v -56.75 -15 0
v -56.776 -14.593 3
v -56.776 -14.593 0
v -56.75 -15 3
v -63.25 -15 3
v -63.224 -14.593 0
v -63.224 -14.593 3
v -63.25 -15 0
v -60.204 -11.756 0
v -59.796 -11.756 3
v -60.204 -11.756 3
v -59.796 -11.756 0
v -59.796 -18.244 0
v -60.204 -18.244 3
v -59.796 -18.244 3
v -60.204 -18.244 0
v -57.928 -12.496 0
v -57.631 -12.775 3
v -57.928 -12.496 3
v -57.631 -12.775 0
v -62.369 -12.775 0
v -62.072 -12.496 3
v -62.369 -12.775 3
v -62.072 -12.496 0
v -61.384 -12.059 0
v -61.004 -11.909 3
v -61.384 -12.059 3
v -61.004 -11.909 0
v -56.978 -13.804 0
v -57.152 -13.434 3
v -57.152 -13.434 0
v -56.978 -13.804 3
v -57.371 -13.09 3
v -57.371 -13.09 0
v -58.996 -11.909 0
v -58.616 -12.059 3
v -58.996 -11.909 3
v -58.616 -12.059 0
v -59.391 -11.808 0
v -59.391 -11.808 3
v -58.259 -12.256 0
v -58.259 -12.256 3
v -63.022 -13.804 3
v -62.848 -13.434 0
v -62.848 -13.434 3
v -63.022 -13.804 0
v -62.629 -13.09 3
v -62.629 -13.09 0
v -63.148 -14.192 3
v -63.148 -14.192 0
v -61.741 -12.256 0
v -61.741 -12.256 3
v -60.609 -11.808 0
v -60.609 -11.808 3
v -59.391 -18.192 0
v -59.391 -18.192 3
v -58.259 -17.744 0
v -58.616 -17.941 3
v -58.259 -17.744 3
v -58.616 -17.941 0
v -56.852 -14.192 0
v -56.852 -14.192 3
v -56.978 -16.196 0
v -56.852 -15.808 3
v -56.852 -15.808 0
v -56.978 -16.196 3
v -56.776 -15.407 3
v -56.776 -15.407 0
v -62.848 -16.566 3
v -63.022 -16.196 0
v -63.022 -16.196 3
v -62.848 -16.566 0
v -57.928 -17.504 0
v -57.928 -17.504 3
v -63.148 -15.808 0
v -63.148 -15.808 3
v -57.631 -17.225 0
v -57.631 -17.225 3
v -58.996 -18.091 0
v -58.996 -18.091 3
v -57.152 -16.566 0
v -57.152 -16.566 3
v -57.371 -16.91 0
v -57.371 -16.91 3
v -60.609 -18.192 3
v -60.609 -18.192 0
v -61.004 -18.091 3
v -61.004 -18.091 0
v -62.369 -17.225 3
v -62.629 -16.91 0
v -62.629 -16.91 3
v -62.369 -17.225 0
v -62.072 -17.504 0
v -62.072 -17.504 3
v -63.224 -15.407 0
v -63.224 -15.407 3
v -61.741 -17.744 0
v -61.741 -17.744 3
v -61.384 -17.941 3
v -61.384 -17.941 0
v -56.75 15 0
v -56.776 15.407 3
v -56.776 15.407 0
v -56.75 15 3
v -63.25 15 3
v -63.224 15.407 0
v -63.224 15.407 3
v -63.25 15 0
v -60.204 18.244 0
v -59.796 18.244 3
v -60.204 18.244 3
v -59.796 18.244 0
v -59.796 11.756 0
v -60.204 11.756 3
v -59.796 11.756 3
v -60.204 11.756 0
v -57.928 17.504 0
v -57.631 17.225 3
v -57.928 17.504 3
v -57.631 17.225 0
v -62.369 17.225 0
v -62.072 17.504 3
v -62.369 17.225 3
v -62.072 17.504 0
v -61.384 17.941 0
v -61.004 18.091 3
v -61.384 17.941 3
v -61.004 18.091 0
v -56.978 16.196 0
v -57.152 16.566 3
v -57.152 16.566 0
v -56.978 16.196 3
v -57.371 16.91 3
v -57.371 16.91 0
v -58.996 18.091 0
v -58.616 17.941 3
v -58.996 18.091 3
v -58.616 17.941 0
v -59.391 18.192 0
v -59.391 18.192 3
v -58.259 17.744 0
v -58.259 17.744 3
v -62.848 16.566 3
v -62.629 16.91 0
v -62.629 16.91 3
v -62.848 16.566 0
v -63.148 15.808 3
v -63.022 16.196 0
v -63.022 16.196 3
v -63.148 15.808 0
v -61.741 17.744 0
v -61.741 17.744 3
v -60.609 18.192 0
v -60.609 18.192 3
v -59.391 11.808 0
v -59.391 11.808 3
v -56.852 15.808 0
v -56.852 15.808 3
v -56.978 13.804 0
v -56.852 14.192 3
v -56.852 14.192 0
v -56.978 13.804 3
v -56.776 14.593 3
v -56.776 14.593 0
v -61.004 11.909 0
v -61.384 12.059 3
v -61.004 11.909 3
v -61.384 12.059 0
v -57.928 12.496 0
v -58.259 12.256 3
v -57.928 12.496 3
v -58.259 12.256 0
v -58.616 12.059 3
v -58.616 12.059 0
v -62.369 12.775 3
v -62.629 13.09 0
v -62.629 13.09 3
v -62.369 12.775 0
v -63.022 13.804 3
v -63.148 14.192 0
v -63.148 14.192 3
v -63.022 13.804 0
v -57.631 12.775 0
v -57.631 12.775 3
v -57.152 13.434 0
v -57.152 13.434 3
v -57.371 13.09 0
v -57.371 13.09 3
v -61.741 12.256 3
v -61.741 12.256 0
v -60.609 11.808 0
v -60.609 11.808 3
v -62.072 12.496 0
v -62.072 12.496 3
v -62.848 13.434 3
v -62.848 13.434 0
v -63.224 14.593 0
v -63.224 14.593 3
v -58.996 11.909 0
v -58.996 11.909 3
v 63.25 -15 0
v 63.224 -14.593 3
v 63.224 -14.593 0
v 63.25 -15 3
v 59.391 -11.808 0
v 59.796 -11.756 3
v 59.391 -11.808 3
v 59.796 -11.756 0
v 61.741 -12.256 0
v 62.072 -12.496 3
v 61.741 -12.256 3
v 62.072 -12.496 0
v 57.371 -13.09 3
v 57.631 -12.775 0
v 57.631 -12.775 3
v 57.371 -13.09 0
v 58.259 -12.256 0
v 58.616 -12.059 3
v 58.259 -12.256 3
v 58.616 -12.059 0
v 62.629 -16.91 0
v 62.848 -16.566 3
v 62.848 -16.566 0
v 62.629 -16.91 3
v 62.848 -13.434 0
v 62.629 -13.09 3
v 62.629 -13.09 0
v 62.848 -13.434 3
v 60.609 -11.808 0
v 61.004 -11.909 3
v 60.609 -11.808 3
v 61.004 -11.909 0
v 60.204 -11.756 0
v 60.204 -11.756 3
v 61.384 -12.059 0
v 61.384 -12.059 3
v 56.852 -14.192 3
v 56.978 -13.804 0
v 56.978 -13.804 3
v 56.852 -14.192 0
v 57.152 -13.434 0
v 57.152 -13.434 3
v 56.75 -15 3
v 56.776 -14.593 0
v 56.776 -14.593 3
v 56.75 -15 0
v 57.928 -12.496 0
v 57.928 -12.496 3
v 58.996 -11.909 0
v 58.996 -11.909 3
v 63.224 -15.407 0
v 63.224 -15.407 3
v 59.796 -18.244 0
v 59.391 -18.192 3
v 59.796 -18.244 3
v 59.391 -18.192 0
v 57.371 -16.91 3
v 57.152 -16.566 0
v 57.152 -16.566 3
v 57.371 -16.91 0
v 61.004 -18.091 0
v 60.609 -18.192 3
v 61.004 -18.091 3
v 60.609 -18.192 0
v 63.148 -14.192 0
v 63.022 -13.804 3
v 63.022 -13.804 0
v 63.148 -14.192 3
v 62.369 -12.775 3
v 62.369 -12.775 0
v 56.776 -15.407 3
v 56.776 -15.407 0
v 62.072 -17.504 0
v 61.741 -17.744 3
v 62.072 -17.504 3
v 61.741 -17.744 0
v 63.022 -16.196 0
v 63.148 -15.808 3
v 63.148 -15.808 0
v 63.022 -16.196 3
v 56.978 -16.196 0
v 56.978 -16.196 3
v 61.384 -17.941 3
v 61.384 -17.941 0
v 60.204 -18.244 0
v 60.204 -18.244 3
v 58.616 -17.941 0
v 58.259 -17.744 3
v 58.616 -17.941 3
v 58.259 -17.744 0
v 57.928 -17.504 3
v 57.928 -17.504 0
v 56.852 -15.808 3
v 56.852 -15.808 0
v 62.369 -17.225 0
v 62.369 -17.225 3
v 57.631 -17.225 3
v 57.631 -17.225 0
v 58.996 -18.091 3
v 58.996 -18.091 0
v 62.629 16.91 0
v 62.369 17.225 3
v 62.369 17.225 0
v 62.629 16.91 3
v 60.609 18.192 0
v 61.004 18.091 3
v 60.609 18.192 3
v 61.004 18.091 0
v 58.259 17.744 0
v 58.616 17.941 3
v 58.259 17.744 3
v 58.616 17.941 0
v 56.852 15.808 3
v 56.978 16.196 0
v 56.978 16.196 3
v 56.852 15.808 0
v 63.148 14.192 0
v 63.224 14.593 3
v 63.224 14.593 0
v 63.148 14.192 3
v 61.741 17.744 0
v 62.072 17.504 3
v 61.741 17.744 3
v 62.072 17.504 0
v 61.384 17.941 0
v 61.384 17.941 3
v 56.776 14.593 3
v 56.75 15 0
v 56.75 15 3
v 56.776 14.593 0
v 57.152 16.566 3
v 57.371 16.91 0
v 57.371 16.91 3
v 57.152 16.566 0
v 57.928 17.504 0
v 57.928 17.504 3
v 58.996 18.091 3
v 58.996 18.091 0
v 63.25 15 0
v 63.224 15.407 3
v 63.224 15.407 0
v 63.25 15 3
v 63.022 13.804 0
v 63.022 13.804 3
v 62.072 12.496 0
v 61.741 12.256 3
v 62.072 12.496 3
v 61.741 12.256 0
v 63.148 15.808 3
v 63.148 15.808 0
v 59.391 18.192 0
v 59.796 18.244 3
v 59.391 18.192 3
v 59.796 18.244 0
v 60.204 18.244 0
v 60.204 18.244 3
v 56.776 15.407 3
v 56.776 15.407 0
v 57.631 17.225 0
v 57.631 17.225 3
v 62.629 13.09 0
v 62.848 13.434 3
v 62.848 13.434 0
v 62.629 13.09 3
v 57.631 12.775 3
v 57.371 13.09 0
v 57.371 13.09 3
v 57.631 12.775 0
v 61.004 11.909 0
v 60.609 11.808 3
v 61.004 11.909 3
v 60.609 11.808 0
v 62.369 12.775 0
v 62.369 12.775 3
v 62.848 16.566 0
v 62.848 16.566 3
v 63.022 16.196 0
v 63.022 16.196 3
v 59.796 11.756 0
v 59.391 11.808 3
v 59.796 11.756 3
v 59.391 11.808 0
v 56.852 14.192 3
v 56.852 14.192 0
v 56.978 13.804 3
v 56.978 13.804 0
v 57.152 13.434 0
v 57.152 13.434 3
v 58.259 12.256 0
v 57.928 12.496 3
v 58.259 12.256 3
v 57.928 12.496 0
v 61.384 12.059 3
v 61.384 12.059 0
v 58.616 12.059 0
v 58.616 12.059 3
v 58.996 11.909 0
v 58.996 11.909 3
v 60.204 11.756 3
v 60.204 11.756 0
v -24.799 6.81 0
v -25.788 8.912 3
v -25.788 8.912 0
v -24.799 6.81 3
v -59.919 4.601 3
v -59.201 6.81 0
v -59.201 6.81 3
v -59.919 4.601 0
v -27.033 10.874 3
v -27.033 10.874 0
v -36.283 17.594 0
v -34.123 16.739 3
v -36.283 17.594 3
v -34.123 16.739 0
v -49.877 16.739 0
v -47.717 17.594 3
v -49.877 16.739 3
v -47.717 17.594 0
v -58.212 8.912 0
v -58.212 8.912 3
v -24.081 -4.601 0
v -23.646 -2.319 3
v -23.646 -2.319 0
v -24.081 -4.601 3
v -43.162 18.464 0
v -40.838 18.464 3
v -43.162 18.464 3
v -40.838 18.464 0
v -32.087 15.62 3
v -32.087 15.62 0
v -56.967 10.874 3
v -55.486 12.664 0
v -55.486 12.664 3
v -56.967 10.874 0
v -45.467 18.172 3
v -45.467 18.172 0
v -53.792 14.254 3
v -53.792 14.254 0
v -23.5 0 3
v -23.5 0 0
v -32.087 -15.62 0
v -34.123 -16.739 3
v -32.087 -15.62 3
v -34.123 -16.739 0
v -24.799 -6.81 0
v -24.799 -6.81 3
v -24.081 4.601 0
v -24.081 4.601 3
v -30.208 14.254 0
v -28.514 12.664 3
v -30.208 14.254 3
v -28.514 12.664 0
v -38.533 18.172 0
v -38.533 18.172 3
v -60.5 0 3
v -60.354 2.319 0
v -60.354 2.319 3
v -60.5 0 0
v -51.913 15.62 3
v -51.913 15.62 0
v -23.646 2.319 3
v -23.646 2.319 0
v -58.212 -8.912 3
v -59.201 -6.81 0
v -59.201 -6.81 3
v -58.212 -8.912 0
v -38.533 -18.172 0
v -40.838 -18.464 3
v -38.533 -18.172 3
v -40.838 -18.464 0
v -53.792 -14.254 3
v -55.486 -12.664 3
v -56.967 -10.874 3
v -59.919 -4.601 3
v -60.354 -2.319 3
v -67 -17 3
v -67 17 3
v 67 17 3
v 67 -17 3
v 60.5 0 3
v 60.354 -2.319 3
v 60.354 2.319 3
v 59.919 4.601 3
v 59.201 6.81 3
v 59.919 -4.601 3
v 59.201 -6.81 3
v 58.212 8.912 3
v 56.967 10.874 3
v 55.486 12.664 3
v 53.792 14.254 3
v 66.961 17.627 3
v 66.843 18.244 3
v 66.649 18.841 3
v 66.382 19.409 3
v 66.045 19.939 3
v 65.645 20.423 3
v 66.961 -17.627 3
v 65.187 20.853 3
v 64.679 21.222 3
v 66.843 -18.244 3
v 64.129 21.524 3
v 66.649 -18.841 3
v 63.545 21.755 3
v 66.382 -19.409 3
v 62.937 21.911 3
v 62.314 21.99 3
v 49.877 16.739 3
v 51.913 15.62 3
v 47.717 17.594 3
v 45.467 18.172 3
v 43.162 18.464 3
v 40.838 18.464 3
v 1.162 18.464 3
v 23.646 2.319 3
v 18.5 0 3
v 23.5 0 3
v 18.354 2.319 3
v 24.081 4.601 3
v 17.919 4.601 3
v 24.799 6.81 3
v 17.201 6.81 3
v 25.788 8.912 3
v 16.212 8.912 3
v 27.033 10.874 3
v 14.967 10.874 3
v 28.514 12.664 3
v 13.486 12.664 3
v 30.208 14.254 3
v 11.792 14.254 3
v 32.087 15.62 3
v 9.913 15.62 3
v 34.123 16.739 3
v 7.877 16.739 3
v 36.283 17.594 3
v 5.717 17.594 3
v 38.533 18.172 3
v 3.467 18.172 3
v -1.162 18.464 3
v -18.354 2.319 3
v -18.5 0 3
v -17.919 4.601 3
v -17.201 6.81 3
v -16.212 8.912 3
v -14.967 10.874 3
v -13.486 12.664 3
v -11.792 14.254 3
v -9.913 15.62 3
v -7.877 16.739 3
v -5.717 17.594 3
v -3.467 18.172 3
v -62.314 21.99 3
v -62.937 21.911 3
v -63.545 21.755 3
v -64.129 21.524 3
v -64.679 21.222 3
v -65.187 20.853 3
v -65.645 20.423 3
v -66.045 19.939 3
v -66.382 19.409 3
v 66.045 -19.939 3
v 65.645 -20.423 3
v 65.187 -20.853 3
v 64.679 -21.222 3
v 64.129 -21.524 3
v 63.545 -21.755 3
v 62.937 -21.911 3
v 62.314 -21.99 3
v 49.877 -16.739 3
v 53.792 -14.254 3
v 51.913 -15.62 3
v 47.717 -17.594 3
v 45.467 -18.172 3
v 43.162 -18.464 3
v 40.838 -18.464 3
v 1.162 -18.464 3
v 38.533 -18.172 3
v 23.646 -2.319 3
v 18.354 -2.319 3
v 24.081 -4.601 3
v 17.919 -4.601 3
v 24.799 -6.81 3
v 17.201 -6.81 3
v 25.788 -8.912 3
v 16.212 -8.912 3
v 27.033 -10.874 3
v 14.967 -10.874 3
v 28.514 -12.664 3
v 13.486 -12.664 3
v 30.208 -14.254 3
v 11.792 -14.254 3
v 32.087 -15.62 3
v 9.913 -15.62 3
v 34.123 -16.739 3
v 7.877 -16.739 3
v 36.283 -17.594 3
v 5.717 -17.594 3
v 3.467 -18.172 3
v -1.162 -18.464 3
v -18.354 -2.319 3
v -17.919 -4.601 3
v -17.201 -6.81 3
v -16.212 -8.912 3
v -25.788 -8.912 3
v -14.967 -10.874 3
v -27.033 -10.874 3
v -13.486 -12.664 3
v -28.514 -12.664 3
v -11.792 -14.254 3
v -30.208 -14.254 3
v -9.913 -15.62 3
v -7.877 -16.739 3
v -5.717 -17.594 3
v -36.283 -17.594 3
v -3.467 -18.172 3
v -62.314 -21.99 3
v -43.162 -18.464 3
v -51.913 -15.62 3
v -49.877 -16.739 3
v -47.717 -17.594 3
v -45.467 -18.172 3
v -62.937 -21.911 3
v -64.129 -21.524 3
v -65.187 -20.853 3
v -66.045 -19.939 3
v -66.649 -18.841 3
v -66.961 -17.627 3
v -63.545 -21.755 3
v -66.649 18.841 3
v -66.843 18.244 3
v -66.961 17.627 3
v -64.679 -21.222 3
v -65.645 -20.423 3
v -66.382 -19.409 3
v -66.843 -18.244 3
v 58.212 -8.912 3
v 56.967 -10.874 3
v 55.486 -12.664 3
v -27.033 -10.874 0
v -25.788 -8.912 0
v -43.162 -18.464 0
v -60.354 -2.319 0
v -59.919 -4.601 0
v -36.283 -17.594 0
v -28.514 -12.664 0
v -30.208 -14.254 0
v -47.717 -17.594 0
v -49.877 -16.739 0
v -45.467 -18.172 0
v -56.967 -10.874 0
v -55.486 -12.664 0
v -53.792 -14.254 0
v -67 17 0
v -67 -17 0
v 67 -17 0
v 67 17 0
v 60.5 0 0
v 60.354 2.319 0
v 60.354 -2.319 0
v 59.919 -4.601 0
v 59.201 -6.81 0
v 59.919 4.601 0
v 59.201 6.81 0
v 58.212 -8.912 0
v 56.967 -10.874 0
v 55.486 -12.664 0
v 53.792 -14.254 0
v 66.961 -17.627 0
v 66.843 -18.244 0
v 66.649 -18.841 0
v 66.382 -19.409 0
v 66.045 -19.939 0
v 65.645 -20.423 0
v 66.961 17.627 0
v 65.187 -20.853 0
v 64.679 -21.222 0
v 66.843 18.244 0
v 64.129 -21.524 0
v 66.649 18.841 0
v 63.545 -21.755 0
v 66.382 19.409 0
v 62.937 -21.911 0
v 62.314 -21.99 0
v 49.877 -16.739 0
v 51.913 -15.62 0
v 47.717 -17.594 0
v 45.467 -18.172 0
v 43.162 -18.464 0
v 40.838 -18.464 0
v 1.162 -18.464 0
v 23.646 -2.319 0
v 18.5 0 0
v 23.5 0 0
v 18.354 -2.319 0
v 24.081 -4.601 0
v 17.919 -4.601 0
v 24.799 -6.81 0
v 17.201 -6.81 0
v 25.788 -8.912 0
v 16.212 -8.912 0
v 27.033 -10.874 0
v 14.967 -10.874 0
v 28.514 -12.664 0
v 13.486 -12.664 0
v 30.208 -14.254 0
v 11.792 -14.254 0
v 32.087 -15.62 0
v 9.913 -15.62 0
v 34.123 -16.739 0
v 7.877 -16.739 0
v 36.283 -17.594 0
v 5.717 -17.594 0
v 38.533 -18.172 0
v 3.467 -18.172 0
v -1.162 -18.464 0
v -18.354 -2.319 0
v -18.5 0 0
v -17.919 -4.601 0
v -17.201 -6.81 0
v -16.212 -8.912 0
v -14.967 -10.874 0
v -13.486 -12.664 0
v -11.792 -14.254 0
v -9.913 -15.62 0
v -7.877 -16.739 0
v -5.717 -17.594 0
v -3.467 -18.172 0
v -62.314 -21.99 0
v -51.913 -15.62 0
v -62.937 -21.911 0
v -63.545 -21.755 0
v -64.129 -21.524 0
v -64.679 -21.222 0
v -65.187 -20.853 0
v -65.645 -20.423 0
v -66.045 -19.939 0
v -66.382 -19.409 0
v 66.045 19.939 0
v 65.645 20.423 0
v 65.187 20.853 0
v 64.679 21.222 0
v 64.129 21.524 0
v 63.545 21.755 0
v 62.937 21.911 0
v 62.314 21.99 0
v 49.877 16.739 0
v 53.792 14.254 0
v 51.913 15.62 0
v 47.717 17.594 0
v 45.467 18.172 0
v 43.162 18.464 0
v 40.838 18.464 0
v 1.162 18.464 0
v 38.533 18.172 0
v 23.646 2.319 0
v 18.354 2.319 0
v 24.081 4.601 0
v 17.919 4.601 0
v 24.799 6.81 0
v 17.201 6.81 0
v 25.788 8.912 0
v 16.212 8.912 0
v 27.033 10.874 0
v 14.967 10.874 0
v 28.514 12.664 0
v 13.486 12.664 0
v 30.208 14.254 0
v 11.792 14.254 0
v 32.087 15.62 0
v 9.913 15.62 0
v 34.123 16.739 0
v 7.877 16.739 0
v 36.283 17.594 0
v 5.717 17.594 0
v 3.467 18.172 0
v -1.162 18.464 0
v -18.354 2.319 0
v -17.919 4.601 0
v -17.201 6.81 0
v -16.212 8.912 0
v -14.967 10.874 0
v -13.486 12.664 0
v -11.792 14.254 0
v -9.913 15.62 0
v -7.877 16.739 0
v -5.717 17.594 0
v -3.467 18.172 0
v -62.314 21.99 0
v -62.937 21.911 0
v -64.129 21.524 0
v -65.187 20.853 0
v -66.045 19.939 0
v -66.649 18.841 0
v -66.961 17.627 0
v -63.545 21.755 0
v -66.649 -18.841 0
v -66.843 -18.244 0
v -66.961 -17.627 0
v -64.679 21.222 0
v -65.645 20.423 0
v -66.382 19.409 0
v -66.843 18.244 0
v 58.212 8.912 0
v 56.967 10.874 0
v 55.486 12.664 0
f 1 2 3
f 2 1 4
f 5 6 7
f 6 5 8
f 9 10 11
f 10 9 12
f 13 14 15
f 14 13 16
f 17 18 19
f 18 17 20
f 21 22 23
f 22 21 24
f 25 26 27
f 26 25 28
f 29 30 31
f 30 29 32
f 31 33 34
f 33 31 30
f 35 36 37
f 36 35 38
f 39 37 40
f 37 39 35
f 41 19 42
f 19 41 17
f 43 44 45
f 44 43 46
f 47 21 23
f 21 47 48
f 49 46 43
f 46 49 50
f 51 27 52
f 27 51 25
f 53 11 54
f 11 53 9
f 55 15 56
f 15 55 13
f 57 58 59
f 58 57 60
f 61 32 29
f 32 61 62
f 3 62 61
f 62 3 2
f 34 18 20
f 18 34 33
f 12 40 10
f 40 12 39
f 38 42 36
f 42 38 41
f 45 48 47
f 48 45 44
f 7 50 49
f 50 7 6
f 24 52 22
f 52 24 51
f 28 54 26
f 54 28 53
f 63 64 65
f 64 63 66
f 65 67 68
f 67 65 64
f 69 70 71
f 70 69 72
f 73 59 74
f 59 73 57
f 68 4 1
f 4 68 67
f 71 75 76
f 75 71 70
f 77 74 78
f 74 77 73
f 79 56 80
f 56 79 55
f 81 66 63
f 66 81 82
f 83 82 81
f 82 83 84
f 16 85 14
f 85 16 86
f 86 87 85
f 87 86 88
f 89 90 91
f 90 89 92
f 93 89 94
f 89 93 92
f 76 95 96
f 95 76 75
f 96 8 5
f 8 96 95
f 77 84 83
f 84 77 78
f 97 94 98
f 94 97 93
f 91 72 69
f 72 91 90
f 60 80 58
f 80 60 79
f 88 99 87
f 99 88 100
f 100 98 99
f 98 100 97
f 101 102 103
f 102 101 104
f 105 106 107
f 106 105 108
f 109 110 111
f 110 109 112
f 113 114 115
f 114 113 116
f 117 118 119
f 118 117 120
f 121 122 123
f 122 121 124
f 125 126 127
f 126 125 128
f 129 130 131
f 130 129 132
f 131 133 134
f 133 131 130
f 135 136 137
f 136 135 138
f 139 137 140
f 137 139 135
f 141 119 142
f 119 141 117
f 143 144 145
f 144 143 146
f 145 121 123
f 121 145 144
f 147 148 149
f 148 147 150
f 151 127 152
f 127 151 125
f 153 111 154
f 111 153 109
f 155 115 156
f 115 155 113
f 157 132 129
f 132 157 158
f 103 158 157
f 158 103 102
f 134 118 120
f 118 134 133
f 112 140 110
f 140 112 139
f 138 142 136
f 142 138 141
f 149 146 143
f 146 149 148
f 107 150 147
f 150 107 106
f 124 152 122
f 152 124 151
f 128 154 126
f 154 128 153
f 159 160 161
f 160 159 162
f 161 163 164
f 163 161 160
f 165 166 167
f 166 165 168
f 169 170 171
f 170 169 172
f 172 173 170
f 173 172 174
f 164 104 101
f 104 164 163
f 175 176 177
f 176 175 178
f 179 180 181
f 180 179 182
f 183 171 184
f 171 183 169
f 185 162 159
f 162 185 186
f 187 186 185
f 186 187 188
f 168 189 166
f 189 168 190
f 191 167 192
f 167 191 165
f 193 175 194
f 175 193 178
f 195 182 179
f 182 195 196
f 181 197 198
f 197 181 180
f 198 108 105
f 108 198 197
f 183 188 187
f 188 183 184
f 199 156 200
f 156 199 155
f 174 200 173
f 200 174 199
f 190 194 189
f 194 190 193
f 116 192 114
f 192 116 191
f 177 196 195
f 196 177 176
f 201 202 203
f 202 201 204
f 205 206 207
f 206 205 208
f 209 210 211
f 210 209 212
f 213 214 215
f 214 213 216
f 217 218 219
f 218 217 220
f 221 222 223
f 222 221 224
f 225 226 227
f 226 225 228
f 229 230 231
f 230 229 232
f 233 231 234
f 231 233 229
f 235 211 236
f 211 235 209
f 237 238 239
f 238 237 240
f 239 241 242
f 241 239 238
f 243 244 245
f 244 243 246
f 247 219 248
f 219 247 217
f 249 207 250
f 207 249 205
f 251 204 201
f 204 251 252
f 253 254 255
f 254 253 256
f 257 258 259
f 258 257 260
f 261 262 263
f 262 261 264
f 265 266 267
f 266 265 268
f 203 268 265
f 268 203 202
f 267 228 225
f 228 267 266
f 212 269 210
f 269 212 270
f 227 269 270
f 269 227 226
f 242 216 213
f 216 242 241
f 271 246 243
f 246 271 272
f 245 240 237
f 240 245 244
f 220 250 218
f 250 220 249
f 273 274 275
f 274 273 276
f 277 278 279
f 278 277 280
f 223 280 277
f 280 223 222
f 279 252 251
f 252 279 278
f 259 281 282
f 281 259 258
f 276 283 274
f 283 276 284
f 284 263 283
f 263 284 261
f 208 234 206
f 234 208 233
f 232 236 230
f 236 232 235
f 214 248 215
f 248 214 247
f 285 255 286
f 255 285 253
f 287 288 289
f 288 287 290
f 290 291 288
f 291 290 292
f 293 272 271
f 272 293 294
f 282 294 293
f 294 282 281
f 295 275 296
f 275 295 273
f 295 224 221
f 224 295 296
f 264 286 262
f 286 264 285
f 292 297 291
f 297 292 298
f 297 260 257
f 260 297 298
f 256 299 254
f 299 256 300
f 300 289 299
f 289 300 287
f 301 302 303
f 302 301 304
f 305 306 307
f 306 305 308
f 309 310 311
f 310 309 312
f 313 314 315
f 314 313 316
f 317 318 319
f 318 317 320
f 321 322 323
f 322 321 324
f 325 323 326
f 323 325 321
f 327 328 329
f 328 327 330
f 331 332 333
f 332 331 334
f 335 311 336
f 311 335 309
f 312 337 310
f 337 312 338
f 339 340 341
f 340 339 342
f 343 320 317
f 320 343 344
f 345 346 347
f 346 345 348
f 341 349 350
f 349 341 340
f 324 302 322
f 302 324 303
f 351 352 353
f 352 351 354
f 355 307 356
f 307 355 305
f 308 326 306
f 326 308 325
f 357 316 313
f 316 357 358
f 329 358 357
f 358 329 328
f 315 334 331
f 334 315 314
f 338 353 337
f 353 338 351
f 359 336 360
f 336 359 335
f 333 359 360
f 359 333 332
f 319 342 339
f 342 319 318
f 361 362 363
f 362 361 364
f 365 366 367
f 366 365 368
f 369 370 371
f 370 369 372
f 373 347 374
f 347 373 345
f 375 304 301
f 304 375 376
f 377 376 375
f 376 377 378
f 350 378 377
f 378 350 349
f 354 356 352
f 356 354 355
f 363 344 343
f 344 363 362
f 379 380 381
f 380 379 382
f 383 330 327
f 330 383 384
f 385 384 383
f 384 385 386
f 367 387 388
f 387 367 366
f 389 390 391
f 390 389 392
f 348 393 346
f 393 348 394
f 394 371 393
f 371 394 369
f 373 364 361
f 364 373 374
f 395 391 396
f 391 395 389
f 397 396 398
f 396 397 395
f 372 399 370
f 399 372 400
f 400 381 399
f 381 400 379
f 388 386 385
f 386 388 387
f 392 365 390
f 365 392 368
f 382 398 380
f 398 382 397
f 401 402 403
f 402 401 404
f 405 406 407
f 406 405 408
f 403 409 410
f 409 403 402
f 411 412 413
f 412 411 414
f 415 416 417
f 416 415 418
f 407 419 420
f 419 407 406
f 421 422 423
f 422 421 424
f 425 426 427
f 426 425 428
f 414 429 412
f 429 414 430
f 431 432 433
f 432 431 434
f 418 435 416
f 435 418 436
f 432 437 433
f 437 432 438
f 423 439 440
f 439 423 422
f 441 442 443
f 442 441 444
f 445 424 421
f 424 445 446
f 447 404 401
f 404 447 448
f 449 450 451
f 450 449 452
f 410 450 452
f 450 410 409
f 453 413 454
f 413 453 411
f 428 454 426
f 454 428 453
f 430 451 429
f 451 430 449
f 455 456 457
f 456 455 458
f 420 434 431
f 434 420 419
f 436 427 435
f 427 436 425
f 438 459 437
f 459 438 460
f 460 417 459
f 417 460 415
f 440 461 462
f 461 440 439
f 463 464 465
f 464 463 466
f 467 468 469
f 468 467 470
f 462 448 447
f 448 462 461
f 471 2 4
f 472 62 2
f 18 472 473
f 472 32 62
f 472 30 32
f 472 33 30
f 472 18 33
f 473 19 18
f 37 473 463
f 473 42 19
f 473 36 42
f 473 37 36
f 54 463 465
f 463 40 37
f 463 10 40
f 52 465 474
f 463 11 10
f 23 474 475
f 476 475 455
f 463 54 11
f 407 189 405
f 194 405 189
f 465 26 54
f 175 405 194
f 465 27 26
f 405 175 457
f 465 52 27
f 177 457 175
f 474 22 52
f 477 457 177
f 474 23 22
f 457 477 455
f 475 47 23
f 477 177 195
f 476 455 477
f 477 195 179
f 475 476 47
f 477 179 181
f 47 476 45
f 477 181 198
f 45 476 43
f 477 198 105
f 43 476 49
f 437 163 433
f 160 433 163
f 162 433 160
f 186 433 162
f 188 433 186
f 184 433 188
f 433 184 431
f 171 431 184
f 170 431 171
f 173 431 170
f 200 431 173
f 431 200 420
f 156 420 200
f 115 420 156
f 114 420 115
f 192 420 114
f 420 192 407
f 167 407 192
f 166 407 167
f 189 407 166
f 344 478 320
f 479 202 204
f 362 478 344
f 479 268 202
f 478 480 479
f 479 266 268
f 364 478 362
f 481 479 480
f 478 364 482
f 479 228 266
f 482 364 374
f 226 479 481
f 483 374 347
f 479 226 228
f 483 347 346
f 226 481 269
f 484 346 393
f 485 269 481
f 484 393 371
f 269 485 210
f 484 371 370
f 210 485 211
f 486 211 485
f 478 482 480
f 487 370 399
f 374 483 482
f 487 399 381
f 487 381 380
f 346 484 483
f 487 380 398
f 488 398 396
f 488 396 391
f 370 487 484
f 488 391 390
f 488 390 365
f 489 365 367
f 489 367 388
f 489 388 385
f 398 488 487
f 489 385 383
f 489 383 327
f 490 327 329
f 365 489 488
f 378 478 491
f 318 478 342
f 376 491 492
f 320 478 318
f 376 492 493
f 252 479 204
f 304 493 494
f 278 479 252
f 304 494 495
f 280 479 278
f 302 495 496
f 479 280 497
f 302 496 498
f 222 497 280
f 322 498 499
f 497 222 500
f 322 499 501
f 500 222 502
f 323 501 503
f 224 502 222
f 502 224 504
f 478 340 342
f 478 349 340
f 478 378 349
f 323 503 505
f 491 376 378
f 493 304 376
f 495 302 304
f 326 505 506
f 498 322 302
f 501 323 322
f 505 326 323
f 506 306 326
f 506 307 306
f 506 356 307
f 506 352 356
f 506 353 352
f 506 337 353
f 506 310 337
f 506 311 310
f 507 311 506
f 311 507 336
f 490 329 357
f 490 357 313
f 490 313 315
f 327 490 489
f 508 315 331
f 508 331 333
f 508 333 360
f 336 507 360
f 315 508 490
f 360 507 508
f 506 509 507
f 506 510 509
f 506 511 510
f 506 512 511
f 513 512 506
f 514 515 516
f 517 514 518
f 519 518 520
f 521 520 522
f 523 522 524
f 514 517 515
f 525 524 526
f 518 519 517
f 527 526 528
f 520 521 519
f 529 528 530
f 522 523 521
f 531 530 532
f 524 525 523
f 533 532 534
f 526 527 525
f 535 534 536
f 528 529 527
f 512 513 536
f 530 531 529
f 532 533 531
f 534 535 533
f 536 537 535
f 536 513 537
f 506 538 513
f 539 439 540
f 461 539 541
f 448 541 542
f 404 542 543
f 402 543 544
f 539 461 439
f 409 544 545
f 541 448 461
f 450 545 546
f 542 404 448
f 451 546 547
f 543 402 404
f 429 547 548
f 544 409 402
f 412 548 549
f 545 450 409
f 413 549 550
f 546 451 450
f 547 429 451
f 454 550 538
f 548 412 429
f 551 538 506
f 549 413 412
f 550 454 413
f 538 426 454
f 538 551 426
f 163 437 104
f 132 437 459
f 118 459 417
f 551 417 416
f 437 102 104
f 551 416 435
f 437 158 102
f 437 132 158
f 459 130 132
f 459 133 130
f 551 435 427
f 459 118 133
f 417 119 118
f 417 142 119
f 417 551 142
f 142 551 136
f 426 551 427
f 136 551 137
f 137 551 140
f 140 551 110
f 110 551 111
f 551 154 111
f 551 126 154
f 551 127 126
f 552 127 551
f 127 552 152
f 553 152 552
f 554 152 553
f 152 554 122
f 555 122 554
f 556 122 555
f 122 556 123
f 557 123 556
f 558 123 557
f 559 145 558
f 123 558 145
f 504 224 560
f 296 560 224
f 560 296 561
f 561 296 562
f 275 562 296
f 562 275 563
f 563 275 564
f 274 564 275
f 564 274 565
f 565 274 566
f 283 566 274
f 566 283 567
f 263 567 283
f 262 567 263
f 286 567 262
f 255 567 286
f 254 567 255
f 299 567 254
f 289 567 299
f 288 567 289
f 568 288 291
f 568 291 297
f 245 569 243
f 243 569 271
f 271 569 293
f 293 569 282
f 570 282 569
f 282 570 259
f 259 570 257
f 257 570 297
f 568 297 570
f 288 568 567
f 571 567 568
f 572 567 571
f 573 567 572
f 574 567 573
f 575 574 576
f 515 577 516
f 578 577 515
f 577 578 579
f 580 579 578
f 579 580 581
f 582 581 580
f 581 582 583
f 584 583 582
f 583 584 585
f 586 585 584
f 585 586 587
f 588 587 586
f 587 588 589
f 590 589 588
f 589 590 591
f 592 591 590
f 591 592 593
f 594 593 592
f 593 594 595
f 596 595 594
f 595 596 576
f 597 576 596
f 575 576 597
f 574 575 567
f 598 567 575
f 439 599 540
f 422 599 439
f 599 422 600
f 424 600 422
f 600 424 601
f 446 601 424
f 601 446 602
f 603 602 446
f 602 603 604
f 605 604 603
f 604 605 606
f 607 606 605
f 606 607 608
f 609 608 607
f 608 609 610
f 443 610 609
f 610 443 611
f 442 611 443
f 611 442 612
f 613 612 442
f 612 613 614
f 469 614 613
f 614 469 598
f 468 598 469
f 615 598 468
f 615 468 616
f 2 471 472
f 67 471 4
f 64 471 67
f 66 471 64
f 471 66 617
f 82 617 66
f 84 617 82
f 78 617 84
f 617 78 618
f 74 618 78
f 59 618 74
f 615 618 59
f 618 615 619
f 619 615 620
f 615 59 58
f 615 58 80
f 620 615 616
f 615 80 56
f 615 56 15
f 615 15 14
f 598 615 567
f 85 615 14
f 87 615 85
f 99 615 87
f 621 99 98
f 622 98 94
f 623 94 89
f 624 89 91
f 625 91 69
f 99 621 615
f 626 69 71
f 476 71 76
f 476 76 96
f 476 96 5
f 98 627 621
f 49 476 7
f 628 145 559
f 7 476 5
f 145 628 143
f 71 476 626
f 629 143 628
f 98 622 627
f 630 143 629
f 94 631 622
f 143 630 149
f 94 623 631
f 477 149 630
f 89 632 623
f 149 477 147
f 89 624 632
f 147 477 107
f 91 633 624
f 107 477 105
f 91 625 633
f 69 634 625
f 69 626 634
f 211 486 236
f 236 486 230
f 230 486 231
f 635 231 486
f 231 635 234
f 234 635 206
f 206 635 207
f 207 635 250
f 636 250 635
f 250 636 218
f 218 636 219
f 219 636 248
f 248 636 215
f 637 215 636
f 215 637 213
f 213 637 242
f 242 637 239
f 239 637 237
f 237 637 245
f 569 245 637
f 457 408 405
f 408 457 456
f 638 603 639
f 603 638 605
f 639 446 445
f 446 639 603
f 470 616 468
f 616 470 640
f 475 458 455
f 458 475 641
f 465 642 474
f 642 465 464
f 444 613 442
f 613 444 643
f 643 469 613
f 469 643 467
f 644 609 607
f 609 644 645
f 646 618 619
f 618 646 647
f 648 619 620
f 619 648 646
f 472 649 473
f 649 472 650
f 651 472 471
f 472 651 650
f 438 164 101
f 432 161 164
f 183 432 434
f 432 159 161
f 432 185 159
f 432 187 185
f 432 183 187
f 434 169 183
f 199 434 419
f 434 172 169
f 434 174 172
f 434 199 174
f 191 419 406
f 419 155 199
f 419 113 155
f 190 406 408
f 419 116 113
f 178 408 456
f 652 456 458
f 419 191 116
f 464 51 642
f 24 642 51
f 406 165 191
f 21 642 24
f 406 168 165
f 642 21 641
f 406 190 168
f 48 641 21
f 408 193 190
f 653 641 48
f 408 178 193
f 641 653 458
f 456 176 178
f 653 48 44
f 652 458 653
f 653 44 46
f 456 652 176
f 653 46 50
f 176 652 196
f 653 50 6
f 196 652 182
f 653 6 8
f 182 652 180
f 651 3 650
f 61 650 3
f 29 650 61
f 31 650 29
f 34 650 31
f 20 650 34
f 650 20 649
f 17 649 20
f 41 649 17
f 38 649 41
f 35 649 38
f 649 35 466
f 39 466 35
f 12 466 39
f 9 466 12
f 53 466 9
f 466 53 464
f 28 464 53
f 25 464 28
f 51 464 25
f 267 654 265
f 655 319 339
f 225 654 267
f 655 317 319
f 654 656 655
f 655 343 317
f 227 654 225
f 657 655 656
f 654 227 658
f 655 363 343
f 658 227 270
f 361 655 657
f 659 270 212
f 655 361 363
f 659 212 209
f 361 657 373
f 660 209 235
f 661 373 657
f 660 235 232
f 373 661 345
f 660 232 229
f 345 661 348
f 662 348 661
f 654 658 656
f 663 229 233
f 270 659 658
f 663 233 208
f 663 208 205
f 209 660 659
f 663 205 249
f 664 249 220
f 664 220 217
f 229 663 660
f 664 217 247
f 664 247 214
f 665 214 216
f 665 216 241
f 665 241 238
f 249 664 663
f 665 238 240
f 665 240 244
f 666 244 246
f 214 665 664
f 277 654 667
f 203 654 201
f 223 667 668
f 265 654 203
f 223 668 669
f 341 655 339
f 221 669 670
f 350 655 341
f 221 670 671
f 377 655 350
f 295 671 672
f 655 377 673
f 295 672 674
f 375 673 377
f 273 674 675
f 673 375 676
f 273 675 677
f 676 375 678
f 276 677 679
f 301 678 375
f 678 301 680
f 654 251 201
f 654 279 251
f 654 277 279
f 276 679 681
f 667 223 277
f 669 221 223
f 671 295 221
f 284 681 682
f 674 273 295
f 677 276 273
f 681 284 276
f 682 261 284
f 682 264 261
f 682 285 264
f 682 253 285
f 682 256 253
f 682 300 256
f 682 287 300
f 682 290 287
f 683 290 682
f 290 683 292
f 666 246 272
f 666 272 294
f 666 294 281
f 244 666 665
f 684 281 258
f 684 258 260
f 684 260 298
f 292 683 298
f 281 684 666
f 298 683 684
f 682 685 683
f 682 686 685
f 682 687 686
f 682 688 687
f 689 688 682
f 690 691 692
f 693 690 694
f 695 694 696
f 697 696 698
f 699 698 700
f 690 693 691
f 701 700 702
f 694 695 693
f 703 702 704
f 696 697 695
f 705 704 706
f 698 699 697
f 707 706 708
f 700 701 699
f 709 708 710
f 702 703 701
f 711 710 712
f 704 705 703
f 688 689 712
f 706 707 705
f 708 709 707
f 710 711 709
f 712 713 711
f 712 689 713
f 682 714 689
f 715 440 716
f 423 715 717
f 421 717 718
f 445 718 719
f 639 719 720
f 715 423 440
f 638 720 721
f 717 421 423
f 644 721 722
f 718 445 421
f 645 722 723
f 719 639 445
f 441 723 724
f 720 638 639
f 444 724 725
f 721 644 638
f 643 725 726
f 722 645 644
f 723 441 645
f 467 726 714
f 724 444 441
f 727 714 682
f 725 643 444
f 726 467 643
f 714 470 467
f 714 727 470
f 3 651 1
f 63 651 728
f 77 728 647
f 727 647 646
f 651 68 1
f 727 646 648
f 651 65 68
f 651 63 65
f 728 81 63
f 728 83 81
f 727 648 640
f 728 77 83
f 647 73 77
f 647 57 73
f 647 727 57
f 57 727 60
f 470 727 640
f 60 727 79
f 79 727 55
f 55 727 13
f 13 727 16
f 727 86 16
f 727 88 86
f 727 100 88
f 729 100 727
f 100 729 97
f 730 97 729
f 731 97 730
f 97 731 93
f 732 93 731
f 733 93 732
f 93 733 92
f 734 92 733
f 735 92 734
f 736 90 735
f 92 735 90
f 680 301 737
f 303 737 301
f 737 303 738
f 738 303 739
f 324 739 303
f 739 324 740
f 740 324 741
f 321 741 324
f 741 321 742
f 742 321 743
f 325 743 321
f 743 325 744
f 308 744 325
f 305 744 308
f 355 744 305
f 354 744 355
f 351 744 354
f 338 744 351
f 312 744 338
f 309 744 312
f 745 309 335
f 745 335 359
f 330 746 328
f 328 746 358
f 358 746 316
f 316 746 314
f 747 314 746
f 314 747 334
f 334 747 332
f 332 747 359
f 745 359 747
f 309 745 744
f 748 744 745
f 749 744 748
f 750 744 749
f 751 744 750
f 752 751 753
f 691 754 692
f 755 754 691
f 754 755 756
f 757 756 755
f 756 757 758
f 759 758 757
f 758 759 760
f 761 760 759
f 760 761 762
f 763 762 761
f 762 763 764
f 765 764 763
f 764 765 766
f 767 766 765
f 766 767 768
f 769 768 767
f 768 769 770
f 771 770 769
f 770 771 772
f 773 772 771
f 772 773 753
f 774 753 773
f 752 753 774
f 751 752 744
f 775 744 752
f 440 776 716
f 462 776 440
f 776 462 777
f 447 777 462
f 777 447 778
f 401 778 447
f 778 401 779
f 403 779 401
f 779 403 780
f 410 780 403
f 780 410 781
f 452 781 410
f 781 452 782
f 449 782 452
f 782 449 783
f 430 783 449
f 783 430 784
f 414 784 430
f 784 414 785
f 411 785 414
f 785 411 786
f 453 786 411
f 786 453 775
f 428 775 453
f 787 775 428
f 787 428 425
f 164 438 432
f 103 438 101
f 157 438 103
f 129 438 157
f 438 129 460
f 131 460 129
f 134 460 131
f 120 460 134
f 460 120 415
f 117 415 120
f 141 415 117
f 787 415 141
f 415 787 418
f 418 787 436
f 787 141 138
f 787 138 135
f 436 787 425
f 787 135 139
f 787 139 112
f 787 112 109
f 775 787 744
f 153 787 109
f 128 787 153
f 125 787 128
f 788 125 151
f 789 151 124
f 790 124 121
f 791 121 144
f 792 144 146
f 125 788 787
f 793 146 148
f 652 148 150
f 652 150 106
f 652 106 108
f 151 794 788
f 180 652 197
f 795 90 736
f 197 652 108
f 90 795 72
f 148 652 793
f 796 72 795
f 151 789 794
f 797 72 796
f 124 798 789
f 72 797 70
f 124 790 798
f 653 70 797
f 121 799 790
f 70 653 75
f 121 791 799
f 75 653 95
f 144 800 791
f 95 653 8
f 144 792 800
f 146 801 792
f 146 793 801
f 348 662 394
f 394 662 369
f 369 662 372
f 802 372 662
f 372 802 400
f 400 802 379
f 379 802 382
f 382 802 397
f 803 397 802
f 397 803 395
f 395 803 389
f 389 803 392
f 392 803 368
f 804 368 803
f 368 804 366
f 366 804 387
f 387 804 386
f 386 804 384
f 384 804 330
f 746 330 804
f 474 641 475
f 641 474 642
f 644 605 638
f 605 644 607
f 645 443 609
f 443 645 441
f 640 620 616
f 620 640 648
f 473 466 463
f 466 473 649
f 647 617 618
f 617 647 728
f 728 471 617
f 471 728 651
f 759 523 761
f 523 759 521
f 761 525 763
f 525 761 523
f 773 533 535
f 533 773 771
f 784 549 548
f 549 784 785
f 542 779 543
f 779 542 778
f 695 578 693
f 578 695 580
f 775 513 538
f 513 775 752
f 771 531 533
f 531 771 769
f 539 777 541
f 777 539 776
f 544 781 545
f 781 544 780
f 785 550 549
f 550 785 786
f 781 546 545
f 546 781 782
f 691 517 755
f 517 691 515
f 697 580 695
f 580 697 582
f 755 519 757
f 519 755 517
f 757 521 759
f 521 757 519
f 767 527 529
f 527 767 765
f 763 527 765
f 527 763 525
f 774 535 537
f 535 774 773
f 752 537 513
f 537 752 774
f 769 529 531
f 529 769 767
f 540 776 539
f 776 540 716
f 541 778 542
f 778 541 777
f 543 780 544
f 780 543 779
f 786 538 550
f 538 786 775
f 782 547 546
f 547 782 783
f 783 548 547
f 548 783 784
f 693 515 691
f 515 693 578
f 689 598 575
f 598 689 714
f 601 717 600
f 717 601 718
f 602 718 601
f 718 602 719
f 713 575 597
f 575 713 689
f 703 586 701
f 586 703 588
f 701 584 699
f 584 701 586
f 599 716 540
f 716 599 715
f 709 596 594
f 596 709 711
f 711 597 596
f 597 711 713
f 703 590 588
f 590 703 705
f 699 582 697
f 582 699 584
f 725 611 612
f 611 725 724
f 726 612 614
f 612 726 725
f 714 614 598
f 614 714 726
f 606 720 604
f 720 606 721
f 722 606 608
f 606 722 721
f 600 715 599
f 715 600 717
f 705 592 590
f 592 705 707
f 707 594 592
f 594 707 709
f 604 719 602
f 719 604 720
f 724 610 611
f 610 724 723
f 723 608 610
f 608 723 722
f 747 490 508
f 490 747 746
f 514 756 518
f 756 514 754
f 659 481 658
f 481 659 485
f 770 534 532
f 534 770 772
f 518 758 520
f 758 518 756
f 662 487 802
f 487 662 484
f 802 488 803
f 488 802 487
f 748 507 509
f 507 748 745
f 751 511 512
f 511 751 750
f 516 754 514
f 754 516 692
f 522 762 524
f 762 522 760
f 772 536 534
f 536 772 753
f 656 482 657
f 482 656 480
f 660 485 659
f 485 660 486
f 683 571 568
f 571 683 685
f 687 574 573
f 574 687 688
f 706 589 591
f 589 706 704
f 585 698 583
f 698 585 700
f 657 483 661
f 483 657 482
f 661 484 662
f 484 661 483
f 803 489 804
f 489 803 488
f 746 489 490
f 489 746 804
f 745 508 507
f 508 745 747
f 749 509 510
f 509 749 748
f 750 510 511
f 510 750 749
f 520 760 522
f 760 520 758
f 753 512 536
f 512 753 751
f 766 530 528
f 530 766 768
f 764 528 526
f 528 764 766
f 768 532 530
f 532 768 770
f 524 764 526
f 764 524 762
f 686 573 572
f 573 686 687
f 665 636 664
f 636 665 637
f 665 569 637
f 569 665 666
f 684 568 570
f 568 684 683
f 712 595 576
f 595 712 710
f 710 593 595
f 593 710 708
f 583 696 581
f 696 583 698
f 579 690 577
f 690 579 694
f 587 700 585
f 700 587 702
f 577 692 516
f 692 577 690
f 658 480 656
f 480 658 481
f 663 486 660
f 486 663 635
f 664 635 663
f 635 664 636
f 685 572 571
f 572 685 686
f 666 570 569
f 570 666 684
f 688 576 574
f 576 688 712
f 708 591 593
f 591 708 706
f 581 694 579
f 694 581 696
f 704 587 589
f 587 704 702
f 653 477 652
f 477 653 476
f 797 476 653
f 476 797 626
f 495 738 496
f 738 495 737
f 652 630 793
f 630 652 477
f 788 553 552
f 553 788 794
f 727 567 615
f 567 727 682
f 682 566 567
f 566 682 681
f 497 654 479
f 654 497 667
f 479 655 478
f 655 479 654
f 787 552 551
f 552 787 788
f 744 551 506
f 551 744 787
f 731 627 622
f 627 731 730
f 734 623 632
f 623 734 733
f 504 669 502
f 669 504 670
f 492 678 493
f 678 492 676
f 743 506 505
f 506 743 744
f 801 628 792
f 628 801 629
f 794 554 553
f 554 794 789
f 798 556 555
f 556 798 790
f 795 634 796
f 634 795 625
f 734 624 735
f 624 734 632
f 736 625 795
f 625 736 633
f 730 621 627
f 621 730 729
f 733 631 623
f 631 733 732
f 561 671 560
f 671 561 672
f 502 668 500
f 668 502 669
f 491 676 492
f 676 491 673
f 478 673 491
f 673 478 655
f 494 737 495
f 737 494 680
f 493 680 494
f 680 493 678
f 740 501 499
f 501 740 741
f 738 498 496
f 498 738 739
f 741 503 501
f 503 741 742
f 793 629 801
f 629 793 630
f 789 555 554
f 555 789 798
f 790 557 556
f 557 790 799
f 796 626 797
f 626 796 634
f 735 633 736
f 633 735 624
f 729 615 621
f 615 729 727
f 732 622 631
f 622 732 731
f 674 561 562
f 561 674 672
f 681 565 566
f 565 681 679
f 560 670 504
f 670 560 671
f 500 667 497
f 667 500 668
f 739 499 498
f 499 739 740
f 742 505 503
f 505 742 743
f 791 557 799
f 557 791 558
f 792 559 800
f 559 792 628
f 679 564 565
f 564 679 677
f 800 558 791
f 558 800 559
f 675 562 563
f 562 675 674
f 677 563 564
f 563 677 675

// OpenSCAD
$fn = 50;


difference() {
	union() {
		hull() {
			translate(v = [-62.0000000000, 17.0000000000, 0]) {
				cylinder(h = 3, r = 5);
			}
			translate(v = [62.0000000000, 17.0000000000, 0]) {
				cylinder(h = 3, r = 5);
			}
			translate(v = [-62.0000000000, -17.0000000000, 0]) {
				cylinder(h = 3, r = 5);
			}
			translate(v = [62.0000000000, -17.0000000000, 0]) {
				cylinder(h = 3, r = 5);
			}
		}
	}
	union() {
		#translate(v = [-60.0000000000, -15.0000000000, -100.0000000000]) {
			cylinder(h = 200, r = 3.2500000000);
		}
		#translate(v = [-60.0000000000, 15.0000000000, -100.0000000000]) {
			cylinder(h = 200, r = 3.2500000000);
		}
		#translate(v = [60.0000000000, -15.0000000000, -100.0000000000]) {
			cylinder(h = 200, r = 3.2500000000);
		}
		#translate(v = [60.0000000000, 15.0000000000, -100.0000000000]) {
			cylinder(h = 200, r = 3.2500000000);
		}
		#translate(v = [-42.0000000000, 0, 0]) {
			cylinder(h = 3, r = 18.5000000000);
		}
		#cylinder(h = 3, r = 18.5000000000);
		#translate(v = [42.0000000000, 0, 0]) {
			cylinder(h = 3, r = 18.5000000000);
		}
	}
}
